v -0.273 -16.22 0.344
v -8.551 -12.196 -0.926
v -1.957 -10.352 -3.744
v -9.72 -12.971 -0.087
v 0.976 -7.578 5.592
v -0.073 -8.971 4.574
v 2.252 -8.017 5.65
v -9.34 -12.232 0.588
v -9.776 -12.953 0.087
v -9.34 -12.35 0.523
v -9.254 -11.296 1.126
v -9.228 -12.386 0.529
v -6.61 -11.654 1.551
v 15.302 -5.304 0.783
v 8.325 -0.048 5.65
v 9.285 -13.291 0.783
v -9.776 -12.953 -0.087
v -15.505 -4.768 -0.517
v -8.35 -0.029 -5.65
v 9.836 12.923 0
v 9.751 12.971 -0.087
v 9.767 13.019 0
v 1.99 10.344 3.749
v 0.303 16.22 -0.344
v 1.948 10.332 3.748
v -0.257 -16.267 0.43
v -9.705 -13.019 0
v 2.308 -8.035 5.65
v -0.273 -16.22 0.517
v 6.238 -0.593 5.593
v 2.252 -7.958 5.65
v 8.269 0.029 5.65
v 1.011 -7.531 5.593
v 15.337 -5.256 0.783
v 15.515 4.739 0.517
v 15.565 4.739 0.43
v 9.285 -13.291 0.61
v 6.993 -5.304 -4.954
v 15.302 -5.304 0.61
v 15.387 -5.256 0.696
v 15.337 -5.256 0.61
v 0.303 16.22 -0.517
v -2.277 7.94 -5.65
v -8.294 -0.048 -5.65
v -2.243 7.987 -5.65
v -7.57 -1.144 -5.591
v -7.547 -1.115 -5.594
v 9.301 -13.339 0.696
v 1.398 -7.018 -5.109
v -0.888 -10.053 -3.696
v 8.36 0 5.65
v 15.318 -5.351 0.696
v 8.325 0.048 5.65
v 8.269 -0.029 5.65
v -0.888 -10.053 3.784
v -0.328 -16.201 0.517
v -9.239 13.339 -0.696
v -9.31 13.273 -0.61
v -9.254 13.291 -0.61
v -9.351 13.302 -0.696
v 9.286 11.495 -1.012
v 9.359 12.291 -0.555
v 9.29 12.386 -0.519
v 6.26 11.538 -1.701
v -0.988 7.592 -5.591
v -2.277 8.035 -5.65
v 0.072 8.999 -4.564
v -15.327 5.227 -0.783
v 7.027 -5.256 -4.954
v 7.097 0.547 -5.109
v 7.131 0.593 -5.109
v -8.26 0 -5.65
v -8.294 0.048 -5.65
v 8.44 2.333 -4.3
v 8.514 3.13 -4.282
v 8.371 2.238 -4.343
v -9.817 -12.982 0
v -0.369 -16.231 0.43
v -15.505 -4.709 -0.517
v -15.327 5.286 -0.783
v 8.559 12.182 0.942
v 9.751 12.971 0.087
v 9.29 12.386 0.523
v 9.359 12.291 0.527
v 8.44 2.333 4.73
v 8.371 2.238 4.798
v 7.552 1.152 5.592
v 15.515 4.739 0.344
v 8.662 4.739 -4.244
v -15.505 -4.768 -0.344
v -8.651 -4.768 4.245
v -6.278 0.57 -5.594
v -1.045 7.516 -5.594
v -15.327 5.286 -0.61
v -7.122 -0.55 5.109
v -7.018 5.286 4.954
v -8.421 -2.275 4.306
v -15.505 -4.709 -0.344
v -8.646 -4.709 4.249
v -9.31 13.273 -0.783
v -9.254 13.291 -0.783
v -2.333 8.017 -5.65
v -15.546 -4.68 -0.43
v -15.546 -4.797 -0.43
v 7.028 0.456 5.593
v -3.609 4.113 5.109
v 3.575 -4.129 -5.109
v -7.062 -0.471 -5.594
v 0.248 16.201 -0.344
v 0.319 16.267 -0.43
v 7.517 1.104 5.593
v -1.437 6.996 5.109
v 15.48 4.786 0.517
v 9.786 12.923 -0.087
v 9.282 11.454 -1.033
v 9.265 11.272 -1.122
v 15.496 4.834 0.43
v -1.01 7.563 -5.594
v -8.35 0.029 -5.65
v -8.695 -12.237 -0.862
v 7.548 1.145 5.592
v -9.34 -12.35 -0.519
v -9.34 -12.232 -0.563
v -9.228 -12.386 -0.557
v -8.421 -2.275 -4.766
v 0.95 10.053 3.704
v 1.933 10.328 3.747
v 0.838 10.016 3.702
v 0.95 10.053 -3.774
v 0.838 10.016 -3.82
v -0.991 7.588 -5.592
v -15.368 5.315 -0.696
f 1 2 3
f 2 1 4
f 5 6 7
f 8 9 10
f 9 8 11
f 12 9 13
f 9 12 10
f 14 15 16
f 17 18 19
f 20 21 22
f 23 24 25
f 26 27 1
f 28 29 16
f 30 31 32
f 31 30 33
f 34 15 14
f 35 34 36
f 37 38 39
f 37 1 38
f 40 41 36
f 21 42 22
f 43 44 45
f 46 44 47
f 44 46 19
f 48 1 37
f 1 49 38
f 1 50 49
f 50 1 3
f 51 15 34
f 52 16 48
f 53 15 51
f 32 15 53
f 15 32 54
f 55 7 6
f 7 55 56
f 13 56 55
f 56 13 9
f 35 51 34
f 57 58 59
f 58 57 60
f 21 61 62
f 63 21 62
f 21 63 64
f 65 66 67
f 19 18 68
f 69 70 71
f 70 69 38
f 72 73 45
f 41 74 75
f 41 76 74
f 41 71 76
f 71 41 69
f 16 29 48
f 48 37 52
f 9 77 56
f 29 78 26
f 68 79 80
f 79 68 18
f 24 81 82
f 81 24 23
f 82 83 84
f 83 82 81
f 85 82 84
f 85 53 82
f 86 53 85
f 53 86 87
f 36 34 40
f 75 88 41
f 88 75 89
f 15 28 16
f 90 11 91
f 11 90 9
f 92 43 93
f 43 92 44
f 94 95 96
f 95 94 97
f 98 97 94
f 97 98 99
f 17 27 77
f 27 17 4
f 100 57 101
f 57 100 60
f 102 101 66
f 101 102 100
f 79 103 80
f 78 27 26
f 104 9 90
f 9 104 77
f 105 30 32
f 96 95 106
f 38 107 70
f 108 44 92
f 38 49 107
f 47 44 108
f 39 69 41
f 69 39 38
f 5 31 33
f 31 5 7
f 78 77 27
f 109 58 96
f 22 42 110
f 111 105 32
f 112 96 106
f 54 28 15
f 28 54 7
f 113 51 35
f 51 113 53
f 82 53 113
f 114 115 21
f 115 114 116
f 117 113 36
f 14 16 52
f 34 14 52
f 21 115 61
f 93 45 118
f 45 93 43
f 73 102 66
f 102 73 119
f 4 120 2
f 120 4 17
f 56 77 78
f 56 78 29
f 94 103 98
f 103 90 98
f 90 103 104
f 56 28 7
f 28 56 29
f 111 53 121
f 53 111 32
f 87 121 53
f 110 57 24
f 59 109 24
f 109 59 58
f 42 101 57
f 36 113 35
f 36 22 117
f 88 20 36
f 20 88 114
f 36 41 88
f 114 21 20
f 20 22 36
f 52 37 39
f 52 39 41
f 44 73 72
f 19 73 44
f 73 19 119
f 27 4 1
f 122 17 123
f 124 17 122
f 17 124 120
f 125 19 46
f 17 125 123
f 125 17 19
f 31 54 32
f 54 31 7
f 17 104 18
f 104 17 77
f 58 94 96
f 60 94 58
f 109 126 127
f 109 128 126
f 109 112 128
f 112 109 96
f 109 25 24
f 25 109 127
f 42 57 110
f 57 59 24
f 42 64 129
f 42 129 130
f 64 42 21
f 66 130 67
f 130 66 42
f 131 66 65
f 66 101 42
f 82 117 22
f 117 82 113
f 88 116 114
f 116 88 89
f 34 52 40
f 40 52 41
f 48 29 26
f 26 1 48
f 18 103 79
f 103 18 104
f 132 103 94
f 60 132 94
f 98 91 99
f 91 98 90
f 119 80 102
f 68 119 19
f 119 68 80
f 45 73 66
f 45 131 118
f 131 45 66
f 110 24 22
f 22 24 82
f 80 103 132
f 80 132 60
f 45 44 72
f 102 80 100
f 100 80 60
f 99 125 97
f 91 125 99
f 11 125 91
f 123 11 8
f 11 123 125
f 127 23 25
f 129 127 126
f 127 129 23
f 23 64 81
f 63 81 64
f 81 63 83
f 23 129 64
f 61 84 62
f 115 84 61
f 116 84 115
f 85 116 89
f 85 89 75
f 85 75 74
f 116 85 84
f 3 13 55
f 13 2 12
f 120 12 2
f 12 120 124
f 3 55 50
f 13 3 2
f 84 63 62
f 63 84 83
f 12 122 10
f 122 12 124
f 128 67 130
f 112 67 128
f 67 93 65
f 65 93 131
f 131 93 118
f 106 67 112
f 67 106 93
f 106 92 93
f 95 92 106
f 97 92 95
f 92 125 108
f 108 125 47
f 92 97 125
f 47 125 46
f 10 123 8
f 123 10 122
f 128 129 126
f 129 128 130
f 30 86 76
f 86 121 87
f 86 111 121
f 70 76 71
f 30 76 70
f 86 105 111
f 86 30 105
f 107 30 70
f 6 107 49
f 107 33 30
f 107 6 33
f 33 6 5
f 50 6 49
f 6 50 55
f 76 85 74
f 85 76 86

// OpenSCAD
// Auto-generated OpenSCAD file

    inner_points = 10*[[0.5722599249733294, 0.7596229824439242, -1.3090169943749441], [-0.5722599249733294, -0.7596229824439242, 1.3090169943749441], [1.4164956880340376e-14, -3.2423688378582613e-15, -1.618033988749895], [-0.9259360090062975, -1.2290958042298372, 0.49999999999999434], [0.9259360090062975, 1.2290958042298372, -0.49999999999999434], [-1.4164956880340376e-14, 3.2423688378582613e-15, 1.618033988749895], [-0.5722599249733062, -0.7596229824439293, -1.309016994374951], [-0.9259360090062885, -1.2290958042298392, -0.5000000000000058], [0.9259360090062885, 1.2290958042298392, 0.5000000000000058], [0.5722599249733062, 0.7596229824439293, 1.309016994374951], [-0.8340004290313582, -0.2333308474580752, -0.5000000000000069], [0.8340004290313582, 0.2333308474580752, 0.5000000000000069], [-0.26174050405803767, 0.526292134985851, -0.8090169943749508], [-0.834000429031367, -0.23333084745807323, 0.4999999999999932], [0.834000429031367, 0.23333084745807323, -0.4999999999999932], [0.26174050405803767, -0.526292134985851, 0.8090169943749508], [0.2617405040580519, -0.5262921349858541, -0.8090169943749441], [-0.0919355799749304, -0.9957649567717641, 1.1379786002407855e-15], [0.0919355799749304, 0.9957649567717641, -1.1379786002407855e-15], [-0.2617405040580519, 0.5262921349858541, 0.8090169943749441]];

    outer_points = 10*[[-0.028802887989037716, -1.6172054580711597, 0.04302195693174079], [0.028802887989037716, 1.6172054580711597, -0.04302195693174079], [0.9269826837913786, -1.324345589833875, 0.06961214971823448], [0.9735867355317978, 1.2923478081171045, 1.1611401438127444e-06], [-0.9735867355317978, -1.2923478081171045, -1.1611401438127444e-06], [-0.9269826837913786, 1.324345589833875, -0.06961214971823448], [1.5286923773460845, -0.5256307191310772, 0.06961286734230898], [1.5464935410974658, 0.4738572207487425, 0.04302383569595902], [-1.5464935410974658, -0.4738572207487425, -0.04302383569595902], [-1.5286923773460845, 0.5256307191310772, -0.06961286734230898], [0.8309648425538894, 0.0, 0.556324932426536], [-0.8309648425538894, 0.0, -0.556324932426536], [0.2292551489991834, -0.7987148707027978, 0.5563242148024615], [0.25805803698822116, 0.8184905873683619, 0.5133022578707207], [-0.25805803698822116, -0.8184905873683619, -0.5133022578707207], [-0.2292551489991834, 0.7987148707027978, -0.5563242148024615], [0.6977275347921952, -0.5256307191310772, -0.486712065084227], [0.7155286985435765, 0.4738572207487425, -0.5133010967305769], [-0.7155286985435765, -0.4738572207487425, 0.5133010967305769], [-0.6977275347921952, 0.5256307191310772, 0.486712065084227]];

    // Convex hull for inner set (I)
    module inner_hull() {
        hull() {
            for (p = inner_points) {
                translate(p) sphere(r=0.1);
            }
        }
    }

    // Convex hull for outer set (O) minus inner hull (O \ I)
    module outer_minus_inner() {
        difference() {
            hull() {
                for (p = outer_points) {
                    translate(p) sphere(r=0.1);
                }
            }
            inner_hull(); // Subtract inner hull
        }
    }

    // Convex hull for outer set (O) minus all translated inner hulls
    module outer_minus_AllTranslationInner() {
        difference() {
            hull() {
                for (p = outer_points) {
                    translate(p) sphere(r=0.1);
                }
            }
            hull() {
                translate([0,0,50]) inner_hull();
                translate([0,0,-50]) inner_hull();
            }; // Subtract translated inner hulls
        }
    }

    // Difference between outer_minus_inner and outer_minus_AllTranslationInner
    module outer_minus_inner_diff() {
        difference() {
            // Outer minus inner
            difference() {
                hull() {
                    for (p = outer_points) {
                        translate(p) sphere(r=0.1);
                    }
                }
                inner_hull();
            }

            // Subtract Outer minus AllTranslationInner
            difference() {
                hull() {
                    for (p = outer_points) {
                        translate(p) sphere(r=0.1);
                    }
                }
                hull() {
                    translate([0,0,50]) inner_hull();
                    translate([0,0,-50]) inner_hull();
                };
            }
        }
    }

    // Rendering all with colors applied
    color([0, 1, 0, 1]) outer_minus_AllTranslationInner(); // Opaque green
    
